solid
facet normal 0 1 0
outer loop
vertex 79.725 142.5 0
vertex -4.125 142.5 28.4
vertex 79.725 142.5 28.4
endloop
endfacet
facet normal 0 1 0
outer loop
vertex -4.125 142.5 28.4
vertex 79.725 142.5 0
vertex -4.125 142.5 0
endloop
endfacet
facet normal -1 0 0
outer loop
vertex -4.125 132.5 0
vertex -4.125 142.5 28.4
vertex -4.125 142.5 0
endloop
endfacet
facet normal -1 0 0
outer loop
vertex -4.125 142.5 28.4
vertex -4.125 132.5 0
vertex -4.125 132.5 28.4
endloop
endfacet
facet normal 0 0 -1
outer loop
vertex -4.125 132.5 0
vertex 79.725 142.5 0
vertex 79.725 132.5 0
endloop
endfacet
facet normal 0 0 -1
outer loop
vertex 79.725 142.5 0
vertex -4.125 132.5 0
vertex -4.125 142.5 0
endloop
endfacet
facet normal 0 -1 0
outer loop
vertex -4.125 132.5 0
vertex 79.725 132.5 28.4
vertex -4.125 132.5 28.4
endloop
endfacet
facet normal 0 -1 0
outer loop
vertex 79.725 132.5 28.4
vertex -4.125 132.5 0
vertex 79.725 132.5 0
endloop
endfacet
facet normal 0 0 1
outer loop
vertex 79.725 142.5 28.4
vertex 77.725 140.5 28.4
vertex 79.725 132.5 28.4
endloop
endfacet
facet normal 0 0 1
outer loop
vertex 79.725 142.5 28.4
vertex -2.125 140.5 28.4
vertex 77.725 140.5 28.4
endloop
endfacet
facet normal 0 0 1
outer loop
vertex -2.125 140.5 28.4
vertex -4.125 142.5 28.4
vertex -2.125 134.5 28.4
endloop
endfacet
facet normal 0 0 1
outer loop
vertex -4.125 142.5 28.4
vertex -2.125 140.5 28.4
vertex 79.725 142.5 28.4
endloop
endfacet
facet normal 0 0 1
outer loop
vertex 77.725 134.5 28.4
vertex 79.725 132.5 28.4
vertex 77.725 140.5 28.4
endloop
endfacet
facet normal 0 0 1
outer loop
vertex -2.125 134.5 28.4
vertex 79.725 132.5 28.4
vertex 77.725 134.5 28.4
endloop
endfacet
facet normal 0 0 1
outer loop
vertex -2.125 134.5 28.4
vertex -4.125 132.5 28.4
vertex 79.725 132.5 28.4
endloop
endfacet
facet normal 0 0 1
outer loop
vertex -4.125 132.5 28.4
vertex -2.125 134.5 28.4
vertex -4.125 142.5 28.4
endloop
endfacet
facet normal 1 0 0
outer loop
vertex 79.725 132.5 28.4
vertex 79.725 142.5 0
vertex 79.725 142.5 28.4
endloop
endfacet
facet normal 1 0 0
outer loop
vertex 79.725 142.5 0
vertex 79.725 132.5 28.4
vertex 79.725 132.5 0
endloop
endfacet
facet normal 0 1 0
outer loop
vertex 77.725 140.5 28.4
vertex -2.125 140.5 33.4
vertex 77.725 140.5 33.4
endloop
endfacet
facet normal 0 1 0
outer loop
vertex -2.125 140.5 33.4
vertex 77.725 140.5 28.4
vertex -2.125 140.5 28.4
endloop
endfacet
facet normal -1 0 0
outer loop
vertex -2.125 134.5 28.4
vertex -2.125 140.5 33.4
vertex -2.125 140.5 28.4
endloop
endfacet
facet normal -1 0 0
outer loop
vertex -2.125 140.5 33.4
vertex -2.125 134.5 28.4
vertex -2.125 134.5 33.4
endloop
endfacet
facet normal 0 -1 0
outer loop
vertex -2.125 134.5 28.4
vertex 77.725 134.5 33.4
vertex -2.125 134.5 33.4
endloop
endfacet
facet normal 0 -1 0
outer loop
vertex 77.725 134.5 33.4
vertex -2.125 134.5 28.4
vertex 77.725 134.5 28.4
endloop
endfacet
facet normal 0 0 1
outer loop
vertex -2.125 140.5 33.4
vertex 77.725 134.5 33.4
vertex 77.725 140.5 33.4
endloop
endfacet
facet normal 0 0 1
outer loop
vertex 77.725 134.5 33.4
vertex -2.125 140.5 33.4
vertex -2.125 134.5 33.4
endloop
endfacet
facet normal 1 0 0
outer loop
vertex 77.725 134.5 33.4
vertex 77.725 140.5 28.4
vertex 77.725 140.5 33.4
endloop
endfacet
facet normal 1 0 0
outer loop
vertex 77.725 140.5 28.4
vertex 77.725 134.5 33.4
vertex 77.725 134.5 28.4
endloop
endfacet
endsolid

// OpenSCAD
// file: funcBastaoRetratil.scad
// ----- ----- ----- Declaração de Variáveis ----- ----- ----- //

res=10;
folga1=0.125;
folga2=0.175;
eFMO=25.2; //entreFurosMesaOptica
rFuro=6/2;

folginhacobre=1;
nxfuroscobre=4;
nyfuroscobre=3;

cux=(nxfuroscobre-1)*eFMO+2*rFuro+2*folga1;
cuy=(nyfuroscobre-1)*eFMO+2*rFuro+2*folga1;
cuz=28.4;
zcu=10;

cux_compare=1;
cuy_compare=1;
cuz_compare=1;

Ly=70;
//Lx=20;
Lx=cux+2*folginhacobre;
pex=20;
//pex=cux+2*folginhacobre;

rCil=20/2;
altCil=170;
tyCil=rCil+5; //'t' vem de translação, e 'y' vem de estar no eixo y
txCil=30; //'t' vem de translação, e 'y' vem de estar no eixo y

rCone=25;
altCone=rCone+20;

abertura=60; //é um ângulo dado em graus
maoAmais=2.5;
altmao=10;
altmao2=10;
altmao3=35;

cubebracox=55;
cubebracoy=rCil;
cubebracoz=altmao;
aux_scale=0.6;

rKint=rCil-1;
rKext=rCil;
altK=altmao2/2;

rpivot=2.5;
altpivot=altmao2;

rCint1=1;
rCint2=1;
rCext1=1;
rCext2=1;
altC=altmao2/2; // 'C' é de Canhão
entreDistCanhao=10;

altpeq=3;

// ----- ----- ----- Declaração de Variáveis ----- ----- ----- //

//use <threads-library-by-cuiso-daniel-v7.scad>
use <threads-library-by-cuiso-v1.scad>

// ----- ----- ----- MAIN ----- ----- ----- //
module funcBastaoRetratil(peca=2,alt,r=20/2,esp=3,res=100,folga=0.125){
    if(peca==3){
        // Peça Maior
        difference(){
            cylinder(alt,r-folga,r-folga,$fn=res);
            #cylinder(alt,r-esp+folga,r-esp+folga,$fn=res);
            #translate([0,0,alt-5])
            #rotate([90,0,0])
            #cylinder(2*alt,5/2,5/2,$fn=res);
        }
        
        //Peça menor
        translate([0,0,alt-10])
        difference(){
            cylinder(alt,r-esp,r-esp,$fn=res);
            #cylinder(alt,r-2*esp,r-2*esp,$fn=res);
        }
        translate([0,0,2*alt-10])cylinder(altpeq,r-esp,r-esp,$fn=res);
        translate([0,0,2*alt-10+altpeq])
        difference(){
            cylinder(d=10, h=7, $fn = res); 
            #thread_for_nut(diameter=6, length=7, usrclearance=0.1); 
        }
        
        //Parafuso
        translate([r*1.25+9+4.5,0,0]){
            thread_for_screw(diameter=6, length=10); 
            cylinder(d=9+4.5, h=3, $fn=6);
        }
    }else if(peca==0){
        // Peça Maior
        difference(){
            cylinder(alt,r-folga,r-folga,$fn=res);
            #cylinder(alt,r-esp+folga,r-esp+folga,$fn=res);
            #translate([0,0,alt-5])
            #rotate([90,0,0])
            #cylinder(2*alt,5/2,5/2,$fn=res);
        }
    }else if(peca==1){
        //Peça menor
        translate([0,0,alt-10])
        difference(){
            cylinder(alt,r-esp,r-esp,$fn=res);
            #cylinder(alt,r-2*esp,r-2*esp,$fn=res);
        }
        translate([0,0,2*alt-10])cylinder(altpeq,r-esp,r-esp,$fn=res);
        translate([0,0,2*alt-10+altpeq])
        difference(){
            cylinder(d=10, h=7, $fn = res); 
            #thread_for_nut(diameter=6, length=7, usrclearance=0.1); 
        }
    }else if(peca==2){
        //Parafuso
        translate([r*1.25+9+4.5,0,0]){
            thread_for_screw(diameter=6, length=10); 
            cylinder(d=9+4.5, h=3, $fn=6);
        }
    }
    echo("Altura máxima do chão até a parte de baixo do braço (Nota: Não se considera a altura que entra por baixo na peça de cima):");
    echo(2*alt-10+altpeq+7+5+3);
}

funcBastaoRetratil(peca=2,alt=200);
// main file
// ----- ----- ----- Declaração de Variáveis ----- ----- ----- //

res=10;
folga1=0.125;
folga2=0.175;
eFMO=25.2; //entreFurosMesaOptica
rFuro=6/2;

folginhacobre=1;
nxfuroscobre=4;
nyfuroscobre=3;

cux=(nxfuroscobre-1)*eFMO+2*rFuro+2*folga1;
cuy=(nyfuroscobre-1)*eFMO+2*rFuro+2*folga1;
cuz=28.4;
zcu=10;

cux_compare=1;
cuy_compare=1;
cuz_compare=1;

Ly=70;
//Lx=20;
Lx=cux+2*folginhacobre;
pex=20;
//pex=cux+2*folginhacobre;

rCil=20/2;
altCil=270;
tyCil=rCil+5; //'t' vem de translação, e 'y' vem de estar no eixo y
txCil=30; //'t' vem de translação, e 'y' vem de estar no eixo y

rCone=25;
altCone=rCone+20;

abertura=60; //é um ângulo dado em graus
maoAmais=3;
altmao=10;
altmao2=10;
altmao3=27.5;

cubebracox=55;
cubebracoy=rCil;
cubebracoz=altmao;
aux_scale=0.6;

esp=3;
rKint=rCil-esp;
rKext=rCil;
altK=altmao2/2;

rpivot=6;
altpivot=altmao2;

rCint1=1;
rCint2=1;
rCext1=1;
rCext2=1;
altC=altmao2/2; // 'C' é de Canhão
entreDistCanhao=10;

// ----- ----- ----- Declaração de Funções ----- ----- ----- //
use <funcoes_GFCx.scad>
use <funcBastaoRetratil.scad>

// ----- ----- ----- MAIN ----- ----- ----- //

// Suporte a Base da Câmara para a Fixação no Cobre
translate([-rFuro-folga1-folginhacobre,-rFuro-folga1-folginhacobre+2.5*(cuy+2*folginhacobre)-zcu,cuz])
rotate([-90,0,0])
cube([cux+2*folginhacobre,cuz,zcu]);
translate([2*folginhacobre,2*folginhacobre,zcu/2])
translate([-rFuro-folga1-folginhacobre,-rFuro-folga1-folginhacobre+2.5*(cuy+2*folginhacobre)-zcu,cuz])
rotate([-90,0,0])
cube([cux-2*folginhacobre,zcu/2,zcu-4*folginhacobre]);
